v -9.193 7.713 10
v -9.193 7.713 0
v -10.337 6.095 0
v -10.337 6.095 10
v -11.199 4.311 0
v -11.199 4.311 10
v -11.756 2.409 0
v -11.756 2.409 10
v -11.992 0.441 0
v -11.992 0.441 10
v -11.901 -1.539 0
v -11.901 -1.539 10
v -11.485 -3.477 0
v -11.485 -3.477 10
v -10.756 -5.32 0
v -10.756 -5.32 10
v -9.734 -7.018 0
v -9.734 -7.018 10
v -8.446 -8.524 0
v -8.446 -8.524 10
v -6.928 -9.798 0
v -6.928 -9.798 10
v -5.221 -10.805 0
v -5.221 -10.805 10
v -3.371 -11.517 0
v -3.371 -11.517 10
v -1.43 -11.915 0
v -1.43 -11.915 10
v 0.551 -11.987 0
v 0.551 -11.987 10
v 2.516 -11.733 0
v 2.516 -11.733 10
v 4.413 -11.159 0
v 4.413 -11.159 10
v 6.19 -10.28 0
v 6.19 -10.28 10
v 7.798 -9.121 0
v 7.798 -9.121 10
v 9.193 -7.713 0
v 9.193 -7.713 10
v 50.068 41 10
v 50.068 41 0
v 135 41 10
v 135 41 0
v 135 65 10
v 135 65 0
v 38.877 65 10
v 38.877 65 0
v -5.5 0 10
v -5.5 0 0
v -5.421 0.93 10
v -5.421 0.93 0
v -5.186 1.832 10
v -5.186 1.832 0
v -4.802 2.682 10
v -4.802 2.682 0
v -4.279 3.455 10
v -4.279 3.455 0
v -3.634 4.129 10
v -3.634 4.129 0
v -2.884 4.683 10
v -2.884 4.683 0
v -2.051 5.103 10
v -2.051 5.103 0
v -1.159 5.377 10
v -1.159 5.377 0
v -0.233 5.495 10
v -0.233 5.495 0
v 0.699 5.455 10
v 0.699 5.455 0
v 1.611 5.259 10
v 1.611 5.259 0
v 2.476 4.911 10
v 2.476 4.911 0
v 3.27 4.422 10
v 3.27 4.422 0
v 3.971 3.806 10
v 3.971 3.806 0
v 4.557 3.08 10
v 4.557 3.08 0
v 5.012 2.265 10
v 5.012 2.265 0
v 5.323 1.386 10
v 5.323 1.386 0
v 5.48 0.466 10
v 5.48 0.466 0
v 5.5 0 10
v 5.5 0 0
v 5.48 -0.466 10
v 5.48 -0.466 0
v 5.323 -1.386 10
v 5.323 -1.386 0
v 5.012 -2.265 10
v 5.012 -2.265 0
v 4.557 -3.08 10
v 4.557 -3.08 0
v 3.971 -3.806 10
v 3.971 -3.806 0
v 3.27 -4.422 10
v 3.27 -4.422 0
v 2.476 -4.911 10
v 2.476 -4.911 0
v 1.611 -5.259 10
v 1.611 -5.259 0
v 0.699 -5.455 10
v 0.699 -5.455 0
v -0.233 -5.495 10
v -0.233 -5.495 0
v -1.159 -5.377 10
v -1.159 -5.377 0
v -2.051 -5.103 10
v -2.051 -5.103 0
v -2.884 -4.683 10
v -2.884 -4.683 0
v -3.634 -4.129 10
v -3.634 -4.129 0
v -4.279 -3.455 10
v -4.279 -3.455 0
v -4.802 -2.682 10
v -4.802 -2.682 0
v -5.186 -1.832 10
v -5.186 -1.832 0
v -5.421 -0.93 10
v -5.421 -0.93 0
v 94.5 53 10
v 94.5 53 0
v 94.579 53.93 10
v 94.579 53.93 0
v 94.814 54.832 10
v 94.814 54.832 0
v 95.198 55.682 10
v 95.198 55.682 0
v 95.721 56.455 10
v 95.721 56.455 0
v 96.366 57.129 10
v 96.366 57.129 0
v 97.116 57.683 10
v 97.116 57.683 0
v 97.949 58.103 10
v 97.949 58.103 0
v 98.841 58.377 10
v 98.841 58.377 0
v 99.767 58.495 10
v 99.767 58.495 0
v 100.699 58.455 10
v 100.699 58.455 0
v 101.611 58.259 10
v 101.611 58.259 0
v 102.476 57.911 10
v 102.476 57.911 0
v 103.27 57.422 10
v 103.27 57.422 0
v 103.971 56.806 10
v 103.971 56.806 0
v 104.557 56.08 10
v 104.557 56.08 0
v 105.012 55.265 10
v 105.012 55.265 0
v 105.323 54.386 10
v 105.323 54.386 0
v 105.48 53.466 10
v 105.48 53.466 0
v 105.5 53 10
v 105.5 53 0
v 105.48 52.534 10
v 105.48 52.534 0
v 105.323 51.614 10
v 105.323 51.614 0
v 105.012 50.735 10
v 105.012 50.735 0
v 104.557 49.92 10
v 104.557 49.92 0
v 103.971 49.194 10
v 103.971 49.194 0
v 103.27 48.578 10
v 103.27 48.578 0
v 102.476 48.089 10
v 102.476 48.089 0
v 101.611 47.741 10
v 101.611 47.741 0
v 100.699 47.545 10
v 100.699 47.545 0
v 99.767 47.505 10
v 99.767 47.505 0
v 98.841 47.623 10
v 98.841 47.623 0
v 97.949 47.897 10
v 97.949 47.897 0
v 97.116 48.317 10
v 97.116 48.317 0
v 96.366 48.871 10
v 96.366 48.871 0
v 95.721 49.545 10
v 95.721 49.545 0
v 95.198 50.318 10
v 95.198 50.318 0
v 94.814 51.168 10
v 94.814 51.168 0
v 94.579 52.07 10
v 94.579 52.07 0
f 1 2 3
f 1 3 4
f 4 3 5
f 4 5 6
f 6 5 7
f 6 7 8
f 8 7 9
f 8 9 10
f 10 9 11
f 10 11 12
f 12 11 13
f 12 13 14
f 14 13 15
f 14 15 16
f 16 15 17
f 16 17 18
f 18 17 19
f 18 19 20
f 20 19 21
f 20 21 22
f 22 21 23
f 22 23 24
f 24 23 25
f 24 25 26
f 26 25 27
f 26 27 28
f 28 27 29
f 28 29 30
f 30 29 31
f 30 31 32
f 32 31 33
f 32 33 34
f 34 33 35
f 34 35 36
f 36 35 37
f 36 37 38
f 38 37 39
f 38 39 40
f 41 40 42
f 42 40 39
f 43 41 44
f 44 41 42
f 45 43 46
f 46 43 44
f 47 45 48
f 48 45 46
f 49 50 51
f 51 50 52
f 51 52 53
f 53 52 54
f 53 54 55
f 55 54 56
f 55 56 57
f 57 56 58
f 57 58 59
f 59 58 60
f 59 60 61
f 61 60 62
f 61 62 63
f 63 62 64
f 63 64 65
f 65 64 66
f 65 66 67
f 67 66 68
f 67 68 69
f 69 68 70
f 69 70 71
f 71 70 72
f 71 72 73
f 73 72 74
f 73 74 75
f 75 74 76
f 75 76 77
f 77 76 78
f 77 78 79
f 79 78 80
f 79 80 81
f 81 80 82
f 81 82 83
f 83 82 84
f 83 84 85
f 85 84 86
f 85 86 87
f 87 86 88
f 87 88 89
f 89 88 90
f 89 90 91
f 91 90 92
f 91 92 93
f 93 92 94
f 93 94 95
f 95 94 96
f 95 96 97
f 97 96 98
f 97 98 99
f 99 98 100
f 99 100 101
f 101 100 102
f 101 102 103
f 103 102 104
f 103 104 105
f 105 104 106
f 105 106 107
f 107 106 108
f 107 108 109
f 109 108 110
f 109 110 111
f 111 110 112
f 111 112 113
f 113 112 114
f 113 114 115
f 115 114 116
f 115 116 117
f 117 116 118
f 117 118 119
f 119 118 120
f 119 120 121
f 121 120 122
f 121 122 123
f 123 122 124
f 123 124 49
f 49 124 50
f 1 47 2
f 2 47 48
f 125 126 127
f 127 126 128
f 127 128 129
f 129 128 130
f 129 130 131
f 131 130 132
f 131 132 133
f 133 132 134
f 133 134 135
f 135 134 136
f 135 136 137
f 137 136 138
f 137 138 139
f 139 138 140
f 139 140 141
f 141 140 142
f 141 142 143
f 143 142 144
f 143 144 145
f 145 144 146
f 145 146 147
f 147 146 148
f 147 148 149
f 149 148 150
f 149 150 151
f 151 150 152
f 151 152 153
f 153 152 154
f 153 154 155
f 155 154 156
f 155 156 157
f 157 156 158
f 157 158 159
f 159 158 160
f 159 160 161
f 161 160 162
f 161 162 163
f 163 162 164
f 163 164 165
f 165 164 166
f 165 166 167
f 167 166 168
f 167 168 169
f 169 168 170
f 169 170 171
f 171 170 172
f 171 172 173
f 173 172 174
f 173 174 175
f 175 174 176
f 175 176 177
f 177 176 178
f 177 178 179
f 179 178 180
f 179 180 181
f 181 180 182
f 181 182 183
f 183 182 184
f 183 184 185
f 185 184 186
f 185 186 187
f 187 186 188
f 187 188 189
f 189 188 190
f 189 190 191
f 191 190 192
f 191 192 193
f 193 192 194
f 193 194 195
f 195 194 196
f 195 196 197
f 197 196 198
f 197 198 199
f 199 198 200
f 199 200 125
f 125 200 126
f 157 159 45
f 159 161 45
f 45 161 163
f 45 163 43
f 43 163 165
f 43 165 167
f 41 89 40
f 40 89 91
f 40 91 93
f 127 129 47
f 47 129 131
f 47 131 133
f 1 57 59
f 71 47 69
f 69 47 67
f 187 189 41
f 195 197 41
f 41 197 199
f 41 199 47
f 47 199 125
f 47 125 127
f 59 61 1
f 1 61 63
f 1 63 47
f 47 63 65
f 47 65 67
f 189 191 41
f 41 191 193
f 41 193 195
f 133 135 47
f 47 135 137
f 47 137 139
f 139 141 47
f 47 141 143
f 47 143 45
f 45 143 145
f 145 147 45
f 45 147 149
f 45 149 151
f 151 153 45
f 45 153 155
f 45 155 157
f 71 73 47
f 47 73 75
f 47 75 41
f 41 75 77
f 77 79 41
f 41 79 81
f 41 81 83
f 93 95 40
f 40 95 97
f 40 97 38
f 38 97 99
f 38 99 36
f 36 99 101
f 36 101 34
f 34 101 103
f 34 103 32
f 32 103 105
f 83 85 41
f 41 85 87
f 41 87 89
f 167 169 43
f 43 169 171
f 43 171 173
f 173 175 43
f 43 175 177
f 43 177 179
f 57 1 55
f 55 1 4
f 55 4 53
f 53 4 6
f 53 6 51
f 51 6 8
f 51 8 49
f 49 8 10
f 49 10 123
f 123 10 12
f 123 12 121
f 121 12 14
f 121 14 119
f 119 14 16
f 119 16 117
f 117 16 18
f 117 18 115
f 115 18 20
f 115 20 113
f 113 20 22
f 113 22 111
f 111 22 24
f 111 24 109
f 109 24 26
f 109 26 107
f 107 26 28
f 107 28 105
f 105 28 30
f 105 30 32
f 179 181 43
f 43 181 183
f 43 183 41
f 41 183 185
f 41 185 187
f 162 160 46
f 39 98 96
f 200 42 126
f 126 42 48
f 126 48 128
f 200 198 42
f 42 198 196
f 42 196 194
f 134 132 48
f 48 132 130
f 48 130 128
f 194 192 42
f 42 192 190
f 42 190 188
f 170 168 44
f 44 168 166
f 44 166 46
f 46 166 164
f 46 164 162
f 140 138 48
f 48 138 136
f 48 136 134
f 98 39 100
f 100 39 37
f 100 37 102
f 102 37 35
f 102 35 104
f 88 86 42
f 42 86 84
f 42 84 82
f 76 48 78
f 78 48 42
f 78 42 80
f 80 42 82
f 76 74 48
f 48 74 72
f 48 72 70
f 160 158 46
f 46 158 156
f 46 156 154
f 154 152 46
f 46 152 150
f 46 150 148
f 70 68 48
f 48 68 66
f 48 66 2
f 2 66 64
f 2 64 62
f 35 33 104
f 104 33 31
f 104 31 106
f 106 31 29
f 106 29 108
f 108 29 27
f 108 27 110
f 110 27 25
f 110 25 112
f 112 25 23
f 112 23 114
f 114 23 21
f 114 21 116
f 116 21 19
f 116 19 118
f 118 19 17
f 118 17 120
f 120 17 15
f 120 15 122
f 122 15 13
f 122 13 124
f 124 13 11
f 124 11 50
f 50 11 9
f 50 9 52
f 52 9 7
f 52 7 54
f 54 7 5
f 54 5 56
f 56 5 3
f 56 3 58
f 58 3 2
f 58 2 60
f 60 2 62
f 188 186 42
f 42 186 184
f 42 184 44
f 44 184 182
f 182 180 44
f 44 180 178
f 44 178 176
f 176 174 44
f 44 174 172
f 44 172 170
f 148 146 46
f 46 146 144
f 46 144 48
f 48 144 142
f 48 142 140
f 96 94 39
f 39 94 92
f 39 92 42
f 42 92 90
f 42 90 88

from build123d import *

# Parameters (mm, degrees)
SKETCH1_R           = 5.5
BOSS_EXTRUDE1_DEPTH = 10


with BuildPart() as part:
    # Sketch1 → Boss-Extrude1 (new body)
    with BuildSketch(Plane.XY):
        with BuildLine():
            ThreePointArc((-9.192533317, 7.713451316), (-7.713451316, -9.192533317), (9.192533317, -7.713451316))
            Line((9.192533317, -7.713451316), (50.06797235, 41))
            Line((50.06797235, 41), (135, 41))
            Line((135, 41), (135, 65))
            Line((135, 65), (38.876588555, 65))
            Line((38.876588555, 65), (-9.192533317, 7.713451316))
        make_face()
        Circle(SKETCH1_R, mode=Mode.SUBTRACT)
        with Locations((100, 53)):
            Circle(SKETCH1_R, mode=Mode.SUBTRACT)
    extrude(amount=BOSS_EXTRUDE1_DEPTH)


solid = part.part
